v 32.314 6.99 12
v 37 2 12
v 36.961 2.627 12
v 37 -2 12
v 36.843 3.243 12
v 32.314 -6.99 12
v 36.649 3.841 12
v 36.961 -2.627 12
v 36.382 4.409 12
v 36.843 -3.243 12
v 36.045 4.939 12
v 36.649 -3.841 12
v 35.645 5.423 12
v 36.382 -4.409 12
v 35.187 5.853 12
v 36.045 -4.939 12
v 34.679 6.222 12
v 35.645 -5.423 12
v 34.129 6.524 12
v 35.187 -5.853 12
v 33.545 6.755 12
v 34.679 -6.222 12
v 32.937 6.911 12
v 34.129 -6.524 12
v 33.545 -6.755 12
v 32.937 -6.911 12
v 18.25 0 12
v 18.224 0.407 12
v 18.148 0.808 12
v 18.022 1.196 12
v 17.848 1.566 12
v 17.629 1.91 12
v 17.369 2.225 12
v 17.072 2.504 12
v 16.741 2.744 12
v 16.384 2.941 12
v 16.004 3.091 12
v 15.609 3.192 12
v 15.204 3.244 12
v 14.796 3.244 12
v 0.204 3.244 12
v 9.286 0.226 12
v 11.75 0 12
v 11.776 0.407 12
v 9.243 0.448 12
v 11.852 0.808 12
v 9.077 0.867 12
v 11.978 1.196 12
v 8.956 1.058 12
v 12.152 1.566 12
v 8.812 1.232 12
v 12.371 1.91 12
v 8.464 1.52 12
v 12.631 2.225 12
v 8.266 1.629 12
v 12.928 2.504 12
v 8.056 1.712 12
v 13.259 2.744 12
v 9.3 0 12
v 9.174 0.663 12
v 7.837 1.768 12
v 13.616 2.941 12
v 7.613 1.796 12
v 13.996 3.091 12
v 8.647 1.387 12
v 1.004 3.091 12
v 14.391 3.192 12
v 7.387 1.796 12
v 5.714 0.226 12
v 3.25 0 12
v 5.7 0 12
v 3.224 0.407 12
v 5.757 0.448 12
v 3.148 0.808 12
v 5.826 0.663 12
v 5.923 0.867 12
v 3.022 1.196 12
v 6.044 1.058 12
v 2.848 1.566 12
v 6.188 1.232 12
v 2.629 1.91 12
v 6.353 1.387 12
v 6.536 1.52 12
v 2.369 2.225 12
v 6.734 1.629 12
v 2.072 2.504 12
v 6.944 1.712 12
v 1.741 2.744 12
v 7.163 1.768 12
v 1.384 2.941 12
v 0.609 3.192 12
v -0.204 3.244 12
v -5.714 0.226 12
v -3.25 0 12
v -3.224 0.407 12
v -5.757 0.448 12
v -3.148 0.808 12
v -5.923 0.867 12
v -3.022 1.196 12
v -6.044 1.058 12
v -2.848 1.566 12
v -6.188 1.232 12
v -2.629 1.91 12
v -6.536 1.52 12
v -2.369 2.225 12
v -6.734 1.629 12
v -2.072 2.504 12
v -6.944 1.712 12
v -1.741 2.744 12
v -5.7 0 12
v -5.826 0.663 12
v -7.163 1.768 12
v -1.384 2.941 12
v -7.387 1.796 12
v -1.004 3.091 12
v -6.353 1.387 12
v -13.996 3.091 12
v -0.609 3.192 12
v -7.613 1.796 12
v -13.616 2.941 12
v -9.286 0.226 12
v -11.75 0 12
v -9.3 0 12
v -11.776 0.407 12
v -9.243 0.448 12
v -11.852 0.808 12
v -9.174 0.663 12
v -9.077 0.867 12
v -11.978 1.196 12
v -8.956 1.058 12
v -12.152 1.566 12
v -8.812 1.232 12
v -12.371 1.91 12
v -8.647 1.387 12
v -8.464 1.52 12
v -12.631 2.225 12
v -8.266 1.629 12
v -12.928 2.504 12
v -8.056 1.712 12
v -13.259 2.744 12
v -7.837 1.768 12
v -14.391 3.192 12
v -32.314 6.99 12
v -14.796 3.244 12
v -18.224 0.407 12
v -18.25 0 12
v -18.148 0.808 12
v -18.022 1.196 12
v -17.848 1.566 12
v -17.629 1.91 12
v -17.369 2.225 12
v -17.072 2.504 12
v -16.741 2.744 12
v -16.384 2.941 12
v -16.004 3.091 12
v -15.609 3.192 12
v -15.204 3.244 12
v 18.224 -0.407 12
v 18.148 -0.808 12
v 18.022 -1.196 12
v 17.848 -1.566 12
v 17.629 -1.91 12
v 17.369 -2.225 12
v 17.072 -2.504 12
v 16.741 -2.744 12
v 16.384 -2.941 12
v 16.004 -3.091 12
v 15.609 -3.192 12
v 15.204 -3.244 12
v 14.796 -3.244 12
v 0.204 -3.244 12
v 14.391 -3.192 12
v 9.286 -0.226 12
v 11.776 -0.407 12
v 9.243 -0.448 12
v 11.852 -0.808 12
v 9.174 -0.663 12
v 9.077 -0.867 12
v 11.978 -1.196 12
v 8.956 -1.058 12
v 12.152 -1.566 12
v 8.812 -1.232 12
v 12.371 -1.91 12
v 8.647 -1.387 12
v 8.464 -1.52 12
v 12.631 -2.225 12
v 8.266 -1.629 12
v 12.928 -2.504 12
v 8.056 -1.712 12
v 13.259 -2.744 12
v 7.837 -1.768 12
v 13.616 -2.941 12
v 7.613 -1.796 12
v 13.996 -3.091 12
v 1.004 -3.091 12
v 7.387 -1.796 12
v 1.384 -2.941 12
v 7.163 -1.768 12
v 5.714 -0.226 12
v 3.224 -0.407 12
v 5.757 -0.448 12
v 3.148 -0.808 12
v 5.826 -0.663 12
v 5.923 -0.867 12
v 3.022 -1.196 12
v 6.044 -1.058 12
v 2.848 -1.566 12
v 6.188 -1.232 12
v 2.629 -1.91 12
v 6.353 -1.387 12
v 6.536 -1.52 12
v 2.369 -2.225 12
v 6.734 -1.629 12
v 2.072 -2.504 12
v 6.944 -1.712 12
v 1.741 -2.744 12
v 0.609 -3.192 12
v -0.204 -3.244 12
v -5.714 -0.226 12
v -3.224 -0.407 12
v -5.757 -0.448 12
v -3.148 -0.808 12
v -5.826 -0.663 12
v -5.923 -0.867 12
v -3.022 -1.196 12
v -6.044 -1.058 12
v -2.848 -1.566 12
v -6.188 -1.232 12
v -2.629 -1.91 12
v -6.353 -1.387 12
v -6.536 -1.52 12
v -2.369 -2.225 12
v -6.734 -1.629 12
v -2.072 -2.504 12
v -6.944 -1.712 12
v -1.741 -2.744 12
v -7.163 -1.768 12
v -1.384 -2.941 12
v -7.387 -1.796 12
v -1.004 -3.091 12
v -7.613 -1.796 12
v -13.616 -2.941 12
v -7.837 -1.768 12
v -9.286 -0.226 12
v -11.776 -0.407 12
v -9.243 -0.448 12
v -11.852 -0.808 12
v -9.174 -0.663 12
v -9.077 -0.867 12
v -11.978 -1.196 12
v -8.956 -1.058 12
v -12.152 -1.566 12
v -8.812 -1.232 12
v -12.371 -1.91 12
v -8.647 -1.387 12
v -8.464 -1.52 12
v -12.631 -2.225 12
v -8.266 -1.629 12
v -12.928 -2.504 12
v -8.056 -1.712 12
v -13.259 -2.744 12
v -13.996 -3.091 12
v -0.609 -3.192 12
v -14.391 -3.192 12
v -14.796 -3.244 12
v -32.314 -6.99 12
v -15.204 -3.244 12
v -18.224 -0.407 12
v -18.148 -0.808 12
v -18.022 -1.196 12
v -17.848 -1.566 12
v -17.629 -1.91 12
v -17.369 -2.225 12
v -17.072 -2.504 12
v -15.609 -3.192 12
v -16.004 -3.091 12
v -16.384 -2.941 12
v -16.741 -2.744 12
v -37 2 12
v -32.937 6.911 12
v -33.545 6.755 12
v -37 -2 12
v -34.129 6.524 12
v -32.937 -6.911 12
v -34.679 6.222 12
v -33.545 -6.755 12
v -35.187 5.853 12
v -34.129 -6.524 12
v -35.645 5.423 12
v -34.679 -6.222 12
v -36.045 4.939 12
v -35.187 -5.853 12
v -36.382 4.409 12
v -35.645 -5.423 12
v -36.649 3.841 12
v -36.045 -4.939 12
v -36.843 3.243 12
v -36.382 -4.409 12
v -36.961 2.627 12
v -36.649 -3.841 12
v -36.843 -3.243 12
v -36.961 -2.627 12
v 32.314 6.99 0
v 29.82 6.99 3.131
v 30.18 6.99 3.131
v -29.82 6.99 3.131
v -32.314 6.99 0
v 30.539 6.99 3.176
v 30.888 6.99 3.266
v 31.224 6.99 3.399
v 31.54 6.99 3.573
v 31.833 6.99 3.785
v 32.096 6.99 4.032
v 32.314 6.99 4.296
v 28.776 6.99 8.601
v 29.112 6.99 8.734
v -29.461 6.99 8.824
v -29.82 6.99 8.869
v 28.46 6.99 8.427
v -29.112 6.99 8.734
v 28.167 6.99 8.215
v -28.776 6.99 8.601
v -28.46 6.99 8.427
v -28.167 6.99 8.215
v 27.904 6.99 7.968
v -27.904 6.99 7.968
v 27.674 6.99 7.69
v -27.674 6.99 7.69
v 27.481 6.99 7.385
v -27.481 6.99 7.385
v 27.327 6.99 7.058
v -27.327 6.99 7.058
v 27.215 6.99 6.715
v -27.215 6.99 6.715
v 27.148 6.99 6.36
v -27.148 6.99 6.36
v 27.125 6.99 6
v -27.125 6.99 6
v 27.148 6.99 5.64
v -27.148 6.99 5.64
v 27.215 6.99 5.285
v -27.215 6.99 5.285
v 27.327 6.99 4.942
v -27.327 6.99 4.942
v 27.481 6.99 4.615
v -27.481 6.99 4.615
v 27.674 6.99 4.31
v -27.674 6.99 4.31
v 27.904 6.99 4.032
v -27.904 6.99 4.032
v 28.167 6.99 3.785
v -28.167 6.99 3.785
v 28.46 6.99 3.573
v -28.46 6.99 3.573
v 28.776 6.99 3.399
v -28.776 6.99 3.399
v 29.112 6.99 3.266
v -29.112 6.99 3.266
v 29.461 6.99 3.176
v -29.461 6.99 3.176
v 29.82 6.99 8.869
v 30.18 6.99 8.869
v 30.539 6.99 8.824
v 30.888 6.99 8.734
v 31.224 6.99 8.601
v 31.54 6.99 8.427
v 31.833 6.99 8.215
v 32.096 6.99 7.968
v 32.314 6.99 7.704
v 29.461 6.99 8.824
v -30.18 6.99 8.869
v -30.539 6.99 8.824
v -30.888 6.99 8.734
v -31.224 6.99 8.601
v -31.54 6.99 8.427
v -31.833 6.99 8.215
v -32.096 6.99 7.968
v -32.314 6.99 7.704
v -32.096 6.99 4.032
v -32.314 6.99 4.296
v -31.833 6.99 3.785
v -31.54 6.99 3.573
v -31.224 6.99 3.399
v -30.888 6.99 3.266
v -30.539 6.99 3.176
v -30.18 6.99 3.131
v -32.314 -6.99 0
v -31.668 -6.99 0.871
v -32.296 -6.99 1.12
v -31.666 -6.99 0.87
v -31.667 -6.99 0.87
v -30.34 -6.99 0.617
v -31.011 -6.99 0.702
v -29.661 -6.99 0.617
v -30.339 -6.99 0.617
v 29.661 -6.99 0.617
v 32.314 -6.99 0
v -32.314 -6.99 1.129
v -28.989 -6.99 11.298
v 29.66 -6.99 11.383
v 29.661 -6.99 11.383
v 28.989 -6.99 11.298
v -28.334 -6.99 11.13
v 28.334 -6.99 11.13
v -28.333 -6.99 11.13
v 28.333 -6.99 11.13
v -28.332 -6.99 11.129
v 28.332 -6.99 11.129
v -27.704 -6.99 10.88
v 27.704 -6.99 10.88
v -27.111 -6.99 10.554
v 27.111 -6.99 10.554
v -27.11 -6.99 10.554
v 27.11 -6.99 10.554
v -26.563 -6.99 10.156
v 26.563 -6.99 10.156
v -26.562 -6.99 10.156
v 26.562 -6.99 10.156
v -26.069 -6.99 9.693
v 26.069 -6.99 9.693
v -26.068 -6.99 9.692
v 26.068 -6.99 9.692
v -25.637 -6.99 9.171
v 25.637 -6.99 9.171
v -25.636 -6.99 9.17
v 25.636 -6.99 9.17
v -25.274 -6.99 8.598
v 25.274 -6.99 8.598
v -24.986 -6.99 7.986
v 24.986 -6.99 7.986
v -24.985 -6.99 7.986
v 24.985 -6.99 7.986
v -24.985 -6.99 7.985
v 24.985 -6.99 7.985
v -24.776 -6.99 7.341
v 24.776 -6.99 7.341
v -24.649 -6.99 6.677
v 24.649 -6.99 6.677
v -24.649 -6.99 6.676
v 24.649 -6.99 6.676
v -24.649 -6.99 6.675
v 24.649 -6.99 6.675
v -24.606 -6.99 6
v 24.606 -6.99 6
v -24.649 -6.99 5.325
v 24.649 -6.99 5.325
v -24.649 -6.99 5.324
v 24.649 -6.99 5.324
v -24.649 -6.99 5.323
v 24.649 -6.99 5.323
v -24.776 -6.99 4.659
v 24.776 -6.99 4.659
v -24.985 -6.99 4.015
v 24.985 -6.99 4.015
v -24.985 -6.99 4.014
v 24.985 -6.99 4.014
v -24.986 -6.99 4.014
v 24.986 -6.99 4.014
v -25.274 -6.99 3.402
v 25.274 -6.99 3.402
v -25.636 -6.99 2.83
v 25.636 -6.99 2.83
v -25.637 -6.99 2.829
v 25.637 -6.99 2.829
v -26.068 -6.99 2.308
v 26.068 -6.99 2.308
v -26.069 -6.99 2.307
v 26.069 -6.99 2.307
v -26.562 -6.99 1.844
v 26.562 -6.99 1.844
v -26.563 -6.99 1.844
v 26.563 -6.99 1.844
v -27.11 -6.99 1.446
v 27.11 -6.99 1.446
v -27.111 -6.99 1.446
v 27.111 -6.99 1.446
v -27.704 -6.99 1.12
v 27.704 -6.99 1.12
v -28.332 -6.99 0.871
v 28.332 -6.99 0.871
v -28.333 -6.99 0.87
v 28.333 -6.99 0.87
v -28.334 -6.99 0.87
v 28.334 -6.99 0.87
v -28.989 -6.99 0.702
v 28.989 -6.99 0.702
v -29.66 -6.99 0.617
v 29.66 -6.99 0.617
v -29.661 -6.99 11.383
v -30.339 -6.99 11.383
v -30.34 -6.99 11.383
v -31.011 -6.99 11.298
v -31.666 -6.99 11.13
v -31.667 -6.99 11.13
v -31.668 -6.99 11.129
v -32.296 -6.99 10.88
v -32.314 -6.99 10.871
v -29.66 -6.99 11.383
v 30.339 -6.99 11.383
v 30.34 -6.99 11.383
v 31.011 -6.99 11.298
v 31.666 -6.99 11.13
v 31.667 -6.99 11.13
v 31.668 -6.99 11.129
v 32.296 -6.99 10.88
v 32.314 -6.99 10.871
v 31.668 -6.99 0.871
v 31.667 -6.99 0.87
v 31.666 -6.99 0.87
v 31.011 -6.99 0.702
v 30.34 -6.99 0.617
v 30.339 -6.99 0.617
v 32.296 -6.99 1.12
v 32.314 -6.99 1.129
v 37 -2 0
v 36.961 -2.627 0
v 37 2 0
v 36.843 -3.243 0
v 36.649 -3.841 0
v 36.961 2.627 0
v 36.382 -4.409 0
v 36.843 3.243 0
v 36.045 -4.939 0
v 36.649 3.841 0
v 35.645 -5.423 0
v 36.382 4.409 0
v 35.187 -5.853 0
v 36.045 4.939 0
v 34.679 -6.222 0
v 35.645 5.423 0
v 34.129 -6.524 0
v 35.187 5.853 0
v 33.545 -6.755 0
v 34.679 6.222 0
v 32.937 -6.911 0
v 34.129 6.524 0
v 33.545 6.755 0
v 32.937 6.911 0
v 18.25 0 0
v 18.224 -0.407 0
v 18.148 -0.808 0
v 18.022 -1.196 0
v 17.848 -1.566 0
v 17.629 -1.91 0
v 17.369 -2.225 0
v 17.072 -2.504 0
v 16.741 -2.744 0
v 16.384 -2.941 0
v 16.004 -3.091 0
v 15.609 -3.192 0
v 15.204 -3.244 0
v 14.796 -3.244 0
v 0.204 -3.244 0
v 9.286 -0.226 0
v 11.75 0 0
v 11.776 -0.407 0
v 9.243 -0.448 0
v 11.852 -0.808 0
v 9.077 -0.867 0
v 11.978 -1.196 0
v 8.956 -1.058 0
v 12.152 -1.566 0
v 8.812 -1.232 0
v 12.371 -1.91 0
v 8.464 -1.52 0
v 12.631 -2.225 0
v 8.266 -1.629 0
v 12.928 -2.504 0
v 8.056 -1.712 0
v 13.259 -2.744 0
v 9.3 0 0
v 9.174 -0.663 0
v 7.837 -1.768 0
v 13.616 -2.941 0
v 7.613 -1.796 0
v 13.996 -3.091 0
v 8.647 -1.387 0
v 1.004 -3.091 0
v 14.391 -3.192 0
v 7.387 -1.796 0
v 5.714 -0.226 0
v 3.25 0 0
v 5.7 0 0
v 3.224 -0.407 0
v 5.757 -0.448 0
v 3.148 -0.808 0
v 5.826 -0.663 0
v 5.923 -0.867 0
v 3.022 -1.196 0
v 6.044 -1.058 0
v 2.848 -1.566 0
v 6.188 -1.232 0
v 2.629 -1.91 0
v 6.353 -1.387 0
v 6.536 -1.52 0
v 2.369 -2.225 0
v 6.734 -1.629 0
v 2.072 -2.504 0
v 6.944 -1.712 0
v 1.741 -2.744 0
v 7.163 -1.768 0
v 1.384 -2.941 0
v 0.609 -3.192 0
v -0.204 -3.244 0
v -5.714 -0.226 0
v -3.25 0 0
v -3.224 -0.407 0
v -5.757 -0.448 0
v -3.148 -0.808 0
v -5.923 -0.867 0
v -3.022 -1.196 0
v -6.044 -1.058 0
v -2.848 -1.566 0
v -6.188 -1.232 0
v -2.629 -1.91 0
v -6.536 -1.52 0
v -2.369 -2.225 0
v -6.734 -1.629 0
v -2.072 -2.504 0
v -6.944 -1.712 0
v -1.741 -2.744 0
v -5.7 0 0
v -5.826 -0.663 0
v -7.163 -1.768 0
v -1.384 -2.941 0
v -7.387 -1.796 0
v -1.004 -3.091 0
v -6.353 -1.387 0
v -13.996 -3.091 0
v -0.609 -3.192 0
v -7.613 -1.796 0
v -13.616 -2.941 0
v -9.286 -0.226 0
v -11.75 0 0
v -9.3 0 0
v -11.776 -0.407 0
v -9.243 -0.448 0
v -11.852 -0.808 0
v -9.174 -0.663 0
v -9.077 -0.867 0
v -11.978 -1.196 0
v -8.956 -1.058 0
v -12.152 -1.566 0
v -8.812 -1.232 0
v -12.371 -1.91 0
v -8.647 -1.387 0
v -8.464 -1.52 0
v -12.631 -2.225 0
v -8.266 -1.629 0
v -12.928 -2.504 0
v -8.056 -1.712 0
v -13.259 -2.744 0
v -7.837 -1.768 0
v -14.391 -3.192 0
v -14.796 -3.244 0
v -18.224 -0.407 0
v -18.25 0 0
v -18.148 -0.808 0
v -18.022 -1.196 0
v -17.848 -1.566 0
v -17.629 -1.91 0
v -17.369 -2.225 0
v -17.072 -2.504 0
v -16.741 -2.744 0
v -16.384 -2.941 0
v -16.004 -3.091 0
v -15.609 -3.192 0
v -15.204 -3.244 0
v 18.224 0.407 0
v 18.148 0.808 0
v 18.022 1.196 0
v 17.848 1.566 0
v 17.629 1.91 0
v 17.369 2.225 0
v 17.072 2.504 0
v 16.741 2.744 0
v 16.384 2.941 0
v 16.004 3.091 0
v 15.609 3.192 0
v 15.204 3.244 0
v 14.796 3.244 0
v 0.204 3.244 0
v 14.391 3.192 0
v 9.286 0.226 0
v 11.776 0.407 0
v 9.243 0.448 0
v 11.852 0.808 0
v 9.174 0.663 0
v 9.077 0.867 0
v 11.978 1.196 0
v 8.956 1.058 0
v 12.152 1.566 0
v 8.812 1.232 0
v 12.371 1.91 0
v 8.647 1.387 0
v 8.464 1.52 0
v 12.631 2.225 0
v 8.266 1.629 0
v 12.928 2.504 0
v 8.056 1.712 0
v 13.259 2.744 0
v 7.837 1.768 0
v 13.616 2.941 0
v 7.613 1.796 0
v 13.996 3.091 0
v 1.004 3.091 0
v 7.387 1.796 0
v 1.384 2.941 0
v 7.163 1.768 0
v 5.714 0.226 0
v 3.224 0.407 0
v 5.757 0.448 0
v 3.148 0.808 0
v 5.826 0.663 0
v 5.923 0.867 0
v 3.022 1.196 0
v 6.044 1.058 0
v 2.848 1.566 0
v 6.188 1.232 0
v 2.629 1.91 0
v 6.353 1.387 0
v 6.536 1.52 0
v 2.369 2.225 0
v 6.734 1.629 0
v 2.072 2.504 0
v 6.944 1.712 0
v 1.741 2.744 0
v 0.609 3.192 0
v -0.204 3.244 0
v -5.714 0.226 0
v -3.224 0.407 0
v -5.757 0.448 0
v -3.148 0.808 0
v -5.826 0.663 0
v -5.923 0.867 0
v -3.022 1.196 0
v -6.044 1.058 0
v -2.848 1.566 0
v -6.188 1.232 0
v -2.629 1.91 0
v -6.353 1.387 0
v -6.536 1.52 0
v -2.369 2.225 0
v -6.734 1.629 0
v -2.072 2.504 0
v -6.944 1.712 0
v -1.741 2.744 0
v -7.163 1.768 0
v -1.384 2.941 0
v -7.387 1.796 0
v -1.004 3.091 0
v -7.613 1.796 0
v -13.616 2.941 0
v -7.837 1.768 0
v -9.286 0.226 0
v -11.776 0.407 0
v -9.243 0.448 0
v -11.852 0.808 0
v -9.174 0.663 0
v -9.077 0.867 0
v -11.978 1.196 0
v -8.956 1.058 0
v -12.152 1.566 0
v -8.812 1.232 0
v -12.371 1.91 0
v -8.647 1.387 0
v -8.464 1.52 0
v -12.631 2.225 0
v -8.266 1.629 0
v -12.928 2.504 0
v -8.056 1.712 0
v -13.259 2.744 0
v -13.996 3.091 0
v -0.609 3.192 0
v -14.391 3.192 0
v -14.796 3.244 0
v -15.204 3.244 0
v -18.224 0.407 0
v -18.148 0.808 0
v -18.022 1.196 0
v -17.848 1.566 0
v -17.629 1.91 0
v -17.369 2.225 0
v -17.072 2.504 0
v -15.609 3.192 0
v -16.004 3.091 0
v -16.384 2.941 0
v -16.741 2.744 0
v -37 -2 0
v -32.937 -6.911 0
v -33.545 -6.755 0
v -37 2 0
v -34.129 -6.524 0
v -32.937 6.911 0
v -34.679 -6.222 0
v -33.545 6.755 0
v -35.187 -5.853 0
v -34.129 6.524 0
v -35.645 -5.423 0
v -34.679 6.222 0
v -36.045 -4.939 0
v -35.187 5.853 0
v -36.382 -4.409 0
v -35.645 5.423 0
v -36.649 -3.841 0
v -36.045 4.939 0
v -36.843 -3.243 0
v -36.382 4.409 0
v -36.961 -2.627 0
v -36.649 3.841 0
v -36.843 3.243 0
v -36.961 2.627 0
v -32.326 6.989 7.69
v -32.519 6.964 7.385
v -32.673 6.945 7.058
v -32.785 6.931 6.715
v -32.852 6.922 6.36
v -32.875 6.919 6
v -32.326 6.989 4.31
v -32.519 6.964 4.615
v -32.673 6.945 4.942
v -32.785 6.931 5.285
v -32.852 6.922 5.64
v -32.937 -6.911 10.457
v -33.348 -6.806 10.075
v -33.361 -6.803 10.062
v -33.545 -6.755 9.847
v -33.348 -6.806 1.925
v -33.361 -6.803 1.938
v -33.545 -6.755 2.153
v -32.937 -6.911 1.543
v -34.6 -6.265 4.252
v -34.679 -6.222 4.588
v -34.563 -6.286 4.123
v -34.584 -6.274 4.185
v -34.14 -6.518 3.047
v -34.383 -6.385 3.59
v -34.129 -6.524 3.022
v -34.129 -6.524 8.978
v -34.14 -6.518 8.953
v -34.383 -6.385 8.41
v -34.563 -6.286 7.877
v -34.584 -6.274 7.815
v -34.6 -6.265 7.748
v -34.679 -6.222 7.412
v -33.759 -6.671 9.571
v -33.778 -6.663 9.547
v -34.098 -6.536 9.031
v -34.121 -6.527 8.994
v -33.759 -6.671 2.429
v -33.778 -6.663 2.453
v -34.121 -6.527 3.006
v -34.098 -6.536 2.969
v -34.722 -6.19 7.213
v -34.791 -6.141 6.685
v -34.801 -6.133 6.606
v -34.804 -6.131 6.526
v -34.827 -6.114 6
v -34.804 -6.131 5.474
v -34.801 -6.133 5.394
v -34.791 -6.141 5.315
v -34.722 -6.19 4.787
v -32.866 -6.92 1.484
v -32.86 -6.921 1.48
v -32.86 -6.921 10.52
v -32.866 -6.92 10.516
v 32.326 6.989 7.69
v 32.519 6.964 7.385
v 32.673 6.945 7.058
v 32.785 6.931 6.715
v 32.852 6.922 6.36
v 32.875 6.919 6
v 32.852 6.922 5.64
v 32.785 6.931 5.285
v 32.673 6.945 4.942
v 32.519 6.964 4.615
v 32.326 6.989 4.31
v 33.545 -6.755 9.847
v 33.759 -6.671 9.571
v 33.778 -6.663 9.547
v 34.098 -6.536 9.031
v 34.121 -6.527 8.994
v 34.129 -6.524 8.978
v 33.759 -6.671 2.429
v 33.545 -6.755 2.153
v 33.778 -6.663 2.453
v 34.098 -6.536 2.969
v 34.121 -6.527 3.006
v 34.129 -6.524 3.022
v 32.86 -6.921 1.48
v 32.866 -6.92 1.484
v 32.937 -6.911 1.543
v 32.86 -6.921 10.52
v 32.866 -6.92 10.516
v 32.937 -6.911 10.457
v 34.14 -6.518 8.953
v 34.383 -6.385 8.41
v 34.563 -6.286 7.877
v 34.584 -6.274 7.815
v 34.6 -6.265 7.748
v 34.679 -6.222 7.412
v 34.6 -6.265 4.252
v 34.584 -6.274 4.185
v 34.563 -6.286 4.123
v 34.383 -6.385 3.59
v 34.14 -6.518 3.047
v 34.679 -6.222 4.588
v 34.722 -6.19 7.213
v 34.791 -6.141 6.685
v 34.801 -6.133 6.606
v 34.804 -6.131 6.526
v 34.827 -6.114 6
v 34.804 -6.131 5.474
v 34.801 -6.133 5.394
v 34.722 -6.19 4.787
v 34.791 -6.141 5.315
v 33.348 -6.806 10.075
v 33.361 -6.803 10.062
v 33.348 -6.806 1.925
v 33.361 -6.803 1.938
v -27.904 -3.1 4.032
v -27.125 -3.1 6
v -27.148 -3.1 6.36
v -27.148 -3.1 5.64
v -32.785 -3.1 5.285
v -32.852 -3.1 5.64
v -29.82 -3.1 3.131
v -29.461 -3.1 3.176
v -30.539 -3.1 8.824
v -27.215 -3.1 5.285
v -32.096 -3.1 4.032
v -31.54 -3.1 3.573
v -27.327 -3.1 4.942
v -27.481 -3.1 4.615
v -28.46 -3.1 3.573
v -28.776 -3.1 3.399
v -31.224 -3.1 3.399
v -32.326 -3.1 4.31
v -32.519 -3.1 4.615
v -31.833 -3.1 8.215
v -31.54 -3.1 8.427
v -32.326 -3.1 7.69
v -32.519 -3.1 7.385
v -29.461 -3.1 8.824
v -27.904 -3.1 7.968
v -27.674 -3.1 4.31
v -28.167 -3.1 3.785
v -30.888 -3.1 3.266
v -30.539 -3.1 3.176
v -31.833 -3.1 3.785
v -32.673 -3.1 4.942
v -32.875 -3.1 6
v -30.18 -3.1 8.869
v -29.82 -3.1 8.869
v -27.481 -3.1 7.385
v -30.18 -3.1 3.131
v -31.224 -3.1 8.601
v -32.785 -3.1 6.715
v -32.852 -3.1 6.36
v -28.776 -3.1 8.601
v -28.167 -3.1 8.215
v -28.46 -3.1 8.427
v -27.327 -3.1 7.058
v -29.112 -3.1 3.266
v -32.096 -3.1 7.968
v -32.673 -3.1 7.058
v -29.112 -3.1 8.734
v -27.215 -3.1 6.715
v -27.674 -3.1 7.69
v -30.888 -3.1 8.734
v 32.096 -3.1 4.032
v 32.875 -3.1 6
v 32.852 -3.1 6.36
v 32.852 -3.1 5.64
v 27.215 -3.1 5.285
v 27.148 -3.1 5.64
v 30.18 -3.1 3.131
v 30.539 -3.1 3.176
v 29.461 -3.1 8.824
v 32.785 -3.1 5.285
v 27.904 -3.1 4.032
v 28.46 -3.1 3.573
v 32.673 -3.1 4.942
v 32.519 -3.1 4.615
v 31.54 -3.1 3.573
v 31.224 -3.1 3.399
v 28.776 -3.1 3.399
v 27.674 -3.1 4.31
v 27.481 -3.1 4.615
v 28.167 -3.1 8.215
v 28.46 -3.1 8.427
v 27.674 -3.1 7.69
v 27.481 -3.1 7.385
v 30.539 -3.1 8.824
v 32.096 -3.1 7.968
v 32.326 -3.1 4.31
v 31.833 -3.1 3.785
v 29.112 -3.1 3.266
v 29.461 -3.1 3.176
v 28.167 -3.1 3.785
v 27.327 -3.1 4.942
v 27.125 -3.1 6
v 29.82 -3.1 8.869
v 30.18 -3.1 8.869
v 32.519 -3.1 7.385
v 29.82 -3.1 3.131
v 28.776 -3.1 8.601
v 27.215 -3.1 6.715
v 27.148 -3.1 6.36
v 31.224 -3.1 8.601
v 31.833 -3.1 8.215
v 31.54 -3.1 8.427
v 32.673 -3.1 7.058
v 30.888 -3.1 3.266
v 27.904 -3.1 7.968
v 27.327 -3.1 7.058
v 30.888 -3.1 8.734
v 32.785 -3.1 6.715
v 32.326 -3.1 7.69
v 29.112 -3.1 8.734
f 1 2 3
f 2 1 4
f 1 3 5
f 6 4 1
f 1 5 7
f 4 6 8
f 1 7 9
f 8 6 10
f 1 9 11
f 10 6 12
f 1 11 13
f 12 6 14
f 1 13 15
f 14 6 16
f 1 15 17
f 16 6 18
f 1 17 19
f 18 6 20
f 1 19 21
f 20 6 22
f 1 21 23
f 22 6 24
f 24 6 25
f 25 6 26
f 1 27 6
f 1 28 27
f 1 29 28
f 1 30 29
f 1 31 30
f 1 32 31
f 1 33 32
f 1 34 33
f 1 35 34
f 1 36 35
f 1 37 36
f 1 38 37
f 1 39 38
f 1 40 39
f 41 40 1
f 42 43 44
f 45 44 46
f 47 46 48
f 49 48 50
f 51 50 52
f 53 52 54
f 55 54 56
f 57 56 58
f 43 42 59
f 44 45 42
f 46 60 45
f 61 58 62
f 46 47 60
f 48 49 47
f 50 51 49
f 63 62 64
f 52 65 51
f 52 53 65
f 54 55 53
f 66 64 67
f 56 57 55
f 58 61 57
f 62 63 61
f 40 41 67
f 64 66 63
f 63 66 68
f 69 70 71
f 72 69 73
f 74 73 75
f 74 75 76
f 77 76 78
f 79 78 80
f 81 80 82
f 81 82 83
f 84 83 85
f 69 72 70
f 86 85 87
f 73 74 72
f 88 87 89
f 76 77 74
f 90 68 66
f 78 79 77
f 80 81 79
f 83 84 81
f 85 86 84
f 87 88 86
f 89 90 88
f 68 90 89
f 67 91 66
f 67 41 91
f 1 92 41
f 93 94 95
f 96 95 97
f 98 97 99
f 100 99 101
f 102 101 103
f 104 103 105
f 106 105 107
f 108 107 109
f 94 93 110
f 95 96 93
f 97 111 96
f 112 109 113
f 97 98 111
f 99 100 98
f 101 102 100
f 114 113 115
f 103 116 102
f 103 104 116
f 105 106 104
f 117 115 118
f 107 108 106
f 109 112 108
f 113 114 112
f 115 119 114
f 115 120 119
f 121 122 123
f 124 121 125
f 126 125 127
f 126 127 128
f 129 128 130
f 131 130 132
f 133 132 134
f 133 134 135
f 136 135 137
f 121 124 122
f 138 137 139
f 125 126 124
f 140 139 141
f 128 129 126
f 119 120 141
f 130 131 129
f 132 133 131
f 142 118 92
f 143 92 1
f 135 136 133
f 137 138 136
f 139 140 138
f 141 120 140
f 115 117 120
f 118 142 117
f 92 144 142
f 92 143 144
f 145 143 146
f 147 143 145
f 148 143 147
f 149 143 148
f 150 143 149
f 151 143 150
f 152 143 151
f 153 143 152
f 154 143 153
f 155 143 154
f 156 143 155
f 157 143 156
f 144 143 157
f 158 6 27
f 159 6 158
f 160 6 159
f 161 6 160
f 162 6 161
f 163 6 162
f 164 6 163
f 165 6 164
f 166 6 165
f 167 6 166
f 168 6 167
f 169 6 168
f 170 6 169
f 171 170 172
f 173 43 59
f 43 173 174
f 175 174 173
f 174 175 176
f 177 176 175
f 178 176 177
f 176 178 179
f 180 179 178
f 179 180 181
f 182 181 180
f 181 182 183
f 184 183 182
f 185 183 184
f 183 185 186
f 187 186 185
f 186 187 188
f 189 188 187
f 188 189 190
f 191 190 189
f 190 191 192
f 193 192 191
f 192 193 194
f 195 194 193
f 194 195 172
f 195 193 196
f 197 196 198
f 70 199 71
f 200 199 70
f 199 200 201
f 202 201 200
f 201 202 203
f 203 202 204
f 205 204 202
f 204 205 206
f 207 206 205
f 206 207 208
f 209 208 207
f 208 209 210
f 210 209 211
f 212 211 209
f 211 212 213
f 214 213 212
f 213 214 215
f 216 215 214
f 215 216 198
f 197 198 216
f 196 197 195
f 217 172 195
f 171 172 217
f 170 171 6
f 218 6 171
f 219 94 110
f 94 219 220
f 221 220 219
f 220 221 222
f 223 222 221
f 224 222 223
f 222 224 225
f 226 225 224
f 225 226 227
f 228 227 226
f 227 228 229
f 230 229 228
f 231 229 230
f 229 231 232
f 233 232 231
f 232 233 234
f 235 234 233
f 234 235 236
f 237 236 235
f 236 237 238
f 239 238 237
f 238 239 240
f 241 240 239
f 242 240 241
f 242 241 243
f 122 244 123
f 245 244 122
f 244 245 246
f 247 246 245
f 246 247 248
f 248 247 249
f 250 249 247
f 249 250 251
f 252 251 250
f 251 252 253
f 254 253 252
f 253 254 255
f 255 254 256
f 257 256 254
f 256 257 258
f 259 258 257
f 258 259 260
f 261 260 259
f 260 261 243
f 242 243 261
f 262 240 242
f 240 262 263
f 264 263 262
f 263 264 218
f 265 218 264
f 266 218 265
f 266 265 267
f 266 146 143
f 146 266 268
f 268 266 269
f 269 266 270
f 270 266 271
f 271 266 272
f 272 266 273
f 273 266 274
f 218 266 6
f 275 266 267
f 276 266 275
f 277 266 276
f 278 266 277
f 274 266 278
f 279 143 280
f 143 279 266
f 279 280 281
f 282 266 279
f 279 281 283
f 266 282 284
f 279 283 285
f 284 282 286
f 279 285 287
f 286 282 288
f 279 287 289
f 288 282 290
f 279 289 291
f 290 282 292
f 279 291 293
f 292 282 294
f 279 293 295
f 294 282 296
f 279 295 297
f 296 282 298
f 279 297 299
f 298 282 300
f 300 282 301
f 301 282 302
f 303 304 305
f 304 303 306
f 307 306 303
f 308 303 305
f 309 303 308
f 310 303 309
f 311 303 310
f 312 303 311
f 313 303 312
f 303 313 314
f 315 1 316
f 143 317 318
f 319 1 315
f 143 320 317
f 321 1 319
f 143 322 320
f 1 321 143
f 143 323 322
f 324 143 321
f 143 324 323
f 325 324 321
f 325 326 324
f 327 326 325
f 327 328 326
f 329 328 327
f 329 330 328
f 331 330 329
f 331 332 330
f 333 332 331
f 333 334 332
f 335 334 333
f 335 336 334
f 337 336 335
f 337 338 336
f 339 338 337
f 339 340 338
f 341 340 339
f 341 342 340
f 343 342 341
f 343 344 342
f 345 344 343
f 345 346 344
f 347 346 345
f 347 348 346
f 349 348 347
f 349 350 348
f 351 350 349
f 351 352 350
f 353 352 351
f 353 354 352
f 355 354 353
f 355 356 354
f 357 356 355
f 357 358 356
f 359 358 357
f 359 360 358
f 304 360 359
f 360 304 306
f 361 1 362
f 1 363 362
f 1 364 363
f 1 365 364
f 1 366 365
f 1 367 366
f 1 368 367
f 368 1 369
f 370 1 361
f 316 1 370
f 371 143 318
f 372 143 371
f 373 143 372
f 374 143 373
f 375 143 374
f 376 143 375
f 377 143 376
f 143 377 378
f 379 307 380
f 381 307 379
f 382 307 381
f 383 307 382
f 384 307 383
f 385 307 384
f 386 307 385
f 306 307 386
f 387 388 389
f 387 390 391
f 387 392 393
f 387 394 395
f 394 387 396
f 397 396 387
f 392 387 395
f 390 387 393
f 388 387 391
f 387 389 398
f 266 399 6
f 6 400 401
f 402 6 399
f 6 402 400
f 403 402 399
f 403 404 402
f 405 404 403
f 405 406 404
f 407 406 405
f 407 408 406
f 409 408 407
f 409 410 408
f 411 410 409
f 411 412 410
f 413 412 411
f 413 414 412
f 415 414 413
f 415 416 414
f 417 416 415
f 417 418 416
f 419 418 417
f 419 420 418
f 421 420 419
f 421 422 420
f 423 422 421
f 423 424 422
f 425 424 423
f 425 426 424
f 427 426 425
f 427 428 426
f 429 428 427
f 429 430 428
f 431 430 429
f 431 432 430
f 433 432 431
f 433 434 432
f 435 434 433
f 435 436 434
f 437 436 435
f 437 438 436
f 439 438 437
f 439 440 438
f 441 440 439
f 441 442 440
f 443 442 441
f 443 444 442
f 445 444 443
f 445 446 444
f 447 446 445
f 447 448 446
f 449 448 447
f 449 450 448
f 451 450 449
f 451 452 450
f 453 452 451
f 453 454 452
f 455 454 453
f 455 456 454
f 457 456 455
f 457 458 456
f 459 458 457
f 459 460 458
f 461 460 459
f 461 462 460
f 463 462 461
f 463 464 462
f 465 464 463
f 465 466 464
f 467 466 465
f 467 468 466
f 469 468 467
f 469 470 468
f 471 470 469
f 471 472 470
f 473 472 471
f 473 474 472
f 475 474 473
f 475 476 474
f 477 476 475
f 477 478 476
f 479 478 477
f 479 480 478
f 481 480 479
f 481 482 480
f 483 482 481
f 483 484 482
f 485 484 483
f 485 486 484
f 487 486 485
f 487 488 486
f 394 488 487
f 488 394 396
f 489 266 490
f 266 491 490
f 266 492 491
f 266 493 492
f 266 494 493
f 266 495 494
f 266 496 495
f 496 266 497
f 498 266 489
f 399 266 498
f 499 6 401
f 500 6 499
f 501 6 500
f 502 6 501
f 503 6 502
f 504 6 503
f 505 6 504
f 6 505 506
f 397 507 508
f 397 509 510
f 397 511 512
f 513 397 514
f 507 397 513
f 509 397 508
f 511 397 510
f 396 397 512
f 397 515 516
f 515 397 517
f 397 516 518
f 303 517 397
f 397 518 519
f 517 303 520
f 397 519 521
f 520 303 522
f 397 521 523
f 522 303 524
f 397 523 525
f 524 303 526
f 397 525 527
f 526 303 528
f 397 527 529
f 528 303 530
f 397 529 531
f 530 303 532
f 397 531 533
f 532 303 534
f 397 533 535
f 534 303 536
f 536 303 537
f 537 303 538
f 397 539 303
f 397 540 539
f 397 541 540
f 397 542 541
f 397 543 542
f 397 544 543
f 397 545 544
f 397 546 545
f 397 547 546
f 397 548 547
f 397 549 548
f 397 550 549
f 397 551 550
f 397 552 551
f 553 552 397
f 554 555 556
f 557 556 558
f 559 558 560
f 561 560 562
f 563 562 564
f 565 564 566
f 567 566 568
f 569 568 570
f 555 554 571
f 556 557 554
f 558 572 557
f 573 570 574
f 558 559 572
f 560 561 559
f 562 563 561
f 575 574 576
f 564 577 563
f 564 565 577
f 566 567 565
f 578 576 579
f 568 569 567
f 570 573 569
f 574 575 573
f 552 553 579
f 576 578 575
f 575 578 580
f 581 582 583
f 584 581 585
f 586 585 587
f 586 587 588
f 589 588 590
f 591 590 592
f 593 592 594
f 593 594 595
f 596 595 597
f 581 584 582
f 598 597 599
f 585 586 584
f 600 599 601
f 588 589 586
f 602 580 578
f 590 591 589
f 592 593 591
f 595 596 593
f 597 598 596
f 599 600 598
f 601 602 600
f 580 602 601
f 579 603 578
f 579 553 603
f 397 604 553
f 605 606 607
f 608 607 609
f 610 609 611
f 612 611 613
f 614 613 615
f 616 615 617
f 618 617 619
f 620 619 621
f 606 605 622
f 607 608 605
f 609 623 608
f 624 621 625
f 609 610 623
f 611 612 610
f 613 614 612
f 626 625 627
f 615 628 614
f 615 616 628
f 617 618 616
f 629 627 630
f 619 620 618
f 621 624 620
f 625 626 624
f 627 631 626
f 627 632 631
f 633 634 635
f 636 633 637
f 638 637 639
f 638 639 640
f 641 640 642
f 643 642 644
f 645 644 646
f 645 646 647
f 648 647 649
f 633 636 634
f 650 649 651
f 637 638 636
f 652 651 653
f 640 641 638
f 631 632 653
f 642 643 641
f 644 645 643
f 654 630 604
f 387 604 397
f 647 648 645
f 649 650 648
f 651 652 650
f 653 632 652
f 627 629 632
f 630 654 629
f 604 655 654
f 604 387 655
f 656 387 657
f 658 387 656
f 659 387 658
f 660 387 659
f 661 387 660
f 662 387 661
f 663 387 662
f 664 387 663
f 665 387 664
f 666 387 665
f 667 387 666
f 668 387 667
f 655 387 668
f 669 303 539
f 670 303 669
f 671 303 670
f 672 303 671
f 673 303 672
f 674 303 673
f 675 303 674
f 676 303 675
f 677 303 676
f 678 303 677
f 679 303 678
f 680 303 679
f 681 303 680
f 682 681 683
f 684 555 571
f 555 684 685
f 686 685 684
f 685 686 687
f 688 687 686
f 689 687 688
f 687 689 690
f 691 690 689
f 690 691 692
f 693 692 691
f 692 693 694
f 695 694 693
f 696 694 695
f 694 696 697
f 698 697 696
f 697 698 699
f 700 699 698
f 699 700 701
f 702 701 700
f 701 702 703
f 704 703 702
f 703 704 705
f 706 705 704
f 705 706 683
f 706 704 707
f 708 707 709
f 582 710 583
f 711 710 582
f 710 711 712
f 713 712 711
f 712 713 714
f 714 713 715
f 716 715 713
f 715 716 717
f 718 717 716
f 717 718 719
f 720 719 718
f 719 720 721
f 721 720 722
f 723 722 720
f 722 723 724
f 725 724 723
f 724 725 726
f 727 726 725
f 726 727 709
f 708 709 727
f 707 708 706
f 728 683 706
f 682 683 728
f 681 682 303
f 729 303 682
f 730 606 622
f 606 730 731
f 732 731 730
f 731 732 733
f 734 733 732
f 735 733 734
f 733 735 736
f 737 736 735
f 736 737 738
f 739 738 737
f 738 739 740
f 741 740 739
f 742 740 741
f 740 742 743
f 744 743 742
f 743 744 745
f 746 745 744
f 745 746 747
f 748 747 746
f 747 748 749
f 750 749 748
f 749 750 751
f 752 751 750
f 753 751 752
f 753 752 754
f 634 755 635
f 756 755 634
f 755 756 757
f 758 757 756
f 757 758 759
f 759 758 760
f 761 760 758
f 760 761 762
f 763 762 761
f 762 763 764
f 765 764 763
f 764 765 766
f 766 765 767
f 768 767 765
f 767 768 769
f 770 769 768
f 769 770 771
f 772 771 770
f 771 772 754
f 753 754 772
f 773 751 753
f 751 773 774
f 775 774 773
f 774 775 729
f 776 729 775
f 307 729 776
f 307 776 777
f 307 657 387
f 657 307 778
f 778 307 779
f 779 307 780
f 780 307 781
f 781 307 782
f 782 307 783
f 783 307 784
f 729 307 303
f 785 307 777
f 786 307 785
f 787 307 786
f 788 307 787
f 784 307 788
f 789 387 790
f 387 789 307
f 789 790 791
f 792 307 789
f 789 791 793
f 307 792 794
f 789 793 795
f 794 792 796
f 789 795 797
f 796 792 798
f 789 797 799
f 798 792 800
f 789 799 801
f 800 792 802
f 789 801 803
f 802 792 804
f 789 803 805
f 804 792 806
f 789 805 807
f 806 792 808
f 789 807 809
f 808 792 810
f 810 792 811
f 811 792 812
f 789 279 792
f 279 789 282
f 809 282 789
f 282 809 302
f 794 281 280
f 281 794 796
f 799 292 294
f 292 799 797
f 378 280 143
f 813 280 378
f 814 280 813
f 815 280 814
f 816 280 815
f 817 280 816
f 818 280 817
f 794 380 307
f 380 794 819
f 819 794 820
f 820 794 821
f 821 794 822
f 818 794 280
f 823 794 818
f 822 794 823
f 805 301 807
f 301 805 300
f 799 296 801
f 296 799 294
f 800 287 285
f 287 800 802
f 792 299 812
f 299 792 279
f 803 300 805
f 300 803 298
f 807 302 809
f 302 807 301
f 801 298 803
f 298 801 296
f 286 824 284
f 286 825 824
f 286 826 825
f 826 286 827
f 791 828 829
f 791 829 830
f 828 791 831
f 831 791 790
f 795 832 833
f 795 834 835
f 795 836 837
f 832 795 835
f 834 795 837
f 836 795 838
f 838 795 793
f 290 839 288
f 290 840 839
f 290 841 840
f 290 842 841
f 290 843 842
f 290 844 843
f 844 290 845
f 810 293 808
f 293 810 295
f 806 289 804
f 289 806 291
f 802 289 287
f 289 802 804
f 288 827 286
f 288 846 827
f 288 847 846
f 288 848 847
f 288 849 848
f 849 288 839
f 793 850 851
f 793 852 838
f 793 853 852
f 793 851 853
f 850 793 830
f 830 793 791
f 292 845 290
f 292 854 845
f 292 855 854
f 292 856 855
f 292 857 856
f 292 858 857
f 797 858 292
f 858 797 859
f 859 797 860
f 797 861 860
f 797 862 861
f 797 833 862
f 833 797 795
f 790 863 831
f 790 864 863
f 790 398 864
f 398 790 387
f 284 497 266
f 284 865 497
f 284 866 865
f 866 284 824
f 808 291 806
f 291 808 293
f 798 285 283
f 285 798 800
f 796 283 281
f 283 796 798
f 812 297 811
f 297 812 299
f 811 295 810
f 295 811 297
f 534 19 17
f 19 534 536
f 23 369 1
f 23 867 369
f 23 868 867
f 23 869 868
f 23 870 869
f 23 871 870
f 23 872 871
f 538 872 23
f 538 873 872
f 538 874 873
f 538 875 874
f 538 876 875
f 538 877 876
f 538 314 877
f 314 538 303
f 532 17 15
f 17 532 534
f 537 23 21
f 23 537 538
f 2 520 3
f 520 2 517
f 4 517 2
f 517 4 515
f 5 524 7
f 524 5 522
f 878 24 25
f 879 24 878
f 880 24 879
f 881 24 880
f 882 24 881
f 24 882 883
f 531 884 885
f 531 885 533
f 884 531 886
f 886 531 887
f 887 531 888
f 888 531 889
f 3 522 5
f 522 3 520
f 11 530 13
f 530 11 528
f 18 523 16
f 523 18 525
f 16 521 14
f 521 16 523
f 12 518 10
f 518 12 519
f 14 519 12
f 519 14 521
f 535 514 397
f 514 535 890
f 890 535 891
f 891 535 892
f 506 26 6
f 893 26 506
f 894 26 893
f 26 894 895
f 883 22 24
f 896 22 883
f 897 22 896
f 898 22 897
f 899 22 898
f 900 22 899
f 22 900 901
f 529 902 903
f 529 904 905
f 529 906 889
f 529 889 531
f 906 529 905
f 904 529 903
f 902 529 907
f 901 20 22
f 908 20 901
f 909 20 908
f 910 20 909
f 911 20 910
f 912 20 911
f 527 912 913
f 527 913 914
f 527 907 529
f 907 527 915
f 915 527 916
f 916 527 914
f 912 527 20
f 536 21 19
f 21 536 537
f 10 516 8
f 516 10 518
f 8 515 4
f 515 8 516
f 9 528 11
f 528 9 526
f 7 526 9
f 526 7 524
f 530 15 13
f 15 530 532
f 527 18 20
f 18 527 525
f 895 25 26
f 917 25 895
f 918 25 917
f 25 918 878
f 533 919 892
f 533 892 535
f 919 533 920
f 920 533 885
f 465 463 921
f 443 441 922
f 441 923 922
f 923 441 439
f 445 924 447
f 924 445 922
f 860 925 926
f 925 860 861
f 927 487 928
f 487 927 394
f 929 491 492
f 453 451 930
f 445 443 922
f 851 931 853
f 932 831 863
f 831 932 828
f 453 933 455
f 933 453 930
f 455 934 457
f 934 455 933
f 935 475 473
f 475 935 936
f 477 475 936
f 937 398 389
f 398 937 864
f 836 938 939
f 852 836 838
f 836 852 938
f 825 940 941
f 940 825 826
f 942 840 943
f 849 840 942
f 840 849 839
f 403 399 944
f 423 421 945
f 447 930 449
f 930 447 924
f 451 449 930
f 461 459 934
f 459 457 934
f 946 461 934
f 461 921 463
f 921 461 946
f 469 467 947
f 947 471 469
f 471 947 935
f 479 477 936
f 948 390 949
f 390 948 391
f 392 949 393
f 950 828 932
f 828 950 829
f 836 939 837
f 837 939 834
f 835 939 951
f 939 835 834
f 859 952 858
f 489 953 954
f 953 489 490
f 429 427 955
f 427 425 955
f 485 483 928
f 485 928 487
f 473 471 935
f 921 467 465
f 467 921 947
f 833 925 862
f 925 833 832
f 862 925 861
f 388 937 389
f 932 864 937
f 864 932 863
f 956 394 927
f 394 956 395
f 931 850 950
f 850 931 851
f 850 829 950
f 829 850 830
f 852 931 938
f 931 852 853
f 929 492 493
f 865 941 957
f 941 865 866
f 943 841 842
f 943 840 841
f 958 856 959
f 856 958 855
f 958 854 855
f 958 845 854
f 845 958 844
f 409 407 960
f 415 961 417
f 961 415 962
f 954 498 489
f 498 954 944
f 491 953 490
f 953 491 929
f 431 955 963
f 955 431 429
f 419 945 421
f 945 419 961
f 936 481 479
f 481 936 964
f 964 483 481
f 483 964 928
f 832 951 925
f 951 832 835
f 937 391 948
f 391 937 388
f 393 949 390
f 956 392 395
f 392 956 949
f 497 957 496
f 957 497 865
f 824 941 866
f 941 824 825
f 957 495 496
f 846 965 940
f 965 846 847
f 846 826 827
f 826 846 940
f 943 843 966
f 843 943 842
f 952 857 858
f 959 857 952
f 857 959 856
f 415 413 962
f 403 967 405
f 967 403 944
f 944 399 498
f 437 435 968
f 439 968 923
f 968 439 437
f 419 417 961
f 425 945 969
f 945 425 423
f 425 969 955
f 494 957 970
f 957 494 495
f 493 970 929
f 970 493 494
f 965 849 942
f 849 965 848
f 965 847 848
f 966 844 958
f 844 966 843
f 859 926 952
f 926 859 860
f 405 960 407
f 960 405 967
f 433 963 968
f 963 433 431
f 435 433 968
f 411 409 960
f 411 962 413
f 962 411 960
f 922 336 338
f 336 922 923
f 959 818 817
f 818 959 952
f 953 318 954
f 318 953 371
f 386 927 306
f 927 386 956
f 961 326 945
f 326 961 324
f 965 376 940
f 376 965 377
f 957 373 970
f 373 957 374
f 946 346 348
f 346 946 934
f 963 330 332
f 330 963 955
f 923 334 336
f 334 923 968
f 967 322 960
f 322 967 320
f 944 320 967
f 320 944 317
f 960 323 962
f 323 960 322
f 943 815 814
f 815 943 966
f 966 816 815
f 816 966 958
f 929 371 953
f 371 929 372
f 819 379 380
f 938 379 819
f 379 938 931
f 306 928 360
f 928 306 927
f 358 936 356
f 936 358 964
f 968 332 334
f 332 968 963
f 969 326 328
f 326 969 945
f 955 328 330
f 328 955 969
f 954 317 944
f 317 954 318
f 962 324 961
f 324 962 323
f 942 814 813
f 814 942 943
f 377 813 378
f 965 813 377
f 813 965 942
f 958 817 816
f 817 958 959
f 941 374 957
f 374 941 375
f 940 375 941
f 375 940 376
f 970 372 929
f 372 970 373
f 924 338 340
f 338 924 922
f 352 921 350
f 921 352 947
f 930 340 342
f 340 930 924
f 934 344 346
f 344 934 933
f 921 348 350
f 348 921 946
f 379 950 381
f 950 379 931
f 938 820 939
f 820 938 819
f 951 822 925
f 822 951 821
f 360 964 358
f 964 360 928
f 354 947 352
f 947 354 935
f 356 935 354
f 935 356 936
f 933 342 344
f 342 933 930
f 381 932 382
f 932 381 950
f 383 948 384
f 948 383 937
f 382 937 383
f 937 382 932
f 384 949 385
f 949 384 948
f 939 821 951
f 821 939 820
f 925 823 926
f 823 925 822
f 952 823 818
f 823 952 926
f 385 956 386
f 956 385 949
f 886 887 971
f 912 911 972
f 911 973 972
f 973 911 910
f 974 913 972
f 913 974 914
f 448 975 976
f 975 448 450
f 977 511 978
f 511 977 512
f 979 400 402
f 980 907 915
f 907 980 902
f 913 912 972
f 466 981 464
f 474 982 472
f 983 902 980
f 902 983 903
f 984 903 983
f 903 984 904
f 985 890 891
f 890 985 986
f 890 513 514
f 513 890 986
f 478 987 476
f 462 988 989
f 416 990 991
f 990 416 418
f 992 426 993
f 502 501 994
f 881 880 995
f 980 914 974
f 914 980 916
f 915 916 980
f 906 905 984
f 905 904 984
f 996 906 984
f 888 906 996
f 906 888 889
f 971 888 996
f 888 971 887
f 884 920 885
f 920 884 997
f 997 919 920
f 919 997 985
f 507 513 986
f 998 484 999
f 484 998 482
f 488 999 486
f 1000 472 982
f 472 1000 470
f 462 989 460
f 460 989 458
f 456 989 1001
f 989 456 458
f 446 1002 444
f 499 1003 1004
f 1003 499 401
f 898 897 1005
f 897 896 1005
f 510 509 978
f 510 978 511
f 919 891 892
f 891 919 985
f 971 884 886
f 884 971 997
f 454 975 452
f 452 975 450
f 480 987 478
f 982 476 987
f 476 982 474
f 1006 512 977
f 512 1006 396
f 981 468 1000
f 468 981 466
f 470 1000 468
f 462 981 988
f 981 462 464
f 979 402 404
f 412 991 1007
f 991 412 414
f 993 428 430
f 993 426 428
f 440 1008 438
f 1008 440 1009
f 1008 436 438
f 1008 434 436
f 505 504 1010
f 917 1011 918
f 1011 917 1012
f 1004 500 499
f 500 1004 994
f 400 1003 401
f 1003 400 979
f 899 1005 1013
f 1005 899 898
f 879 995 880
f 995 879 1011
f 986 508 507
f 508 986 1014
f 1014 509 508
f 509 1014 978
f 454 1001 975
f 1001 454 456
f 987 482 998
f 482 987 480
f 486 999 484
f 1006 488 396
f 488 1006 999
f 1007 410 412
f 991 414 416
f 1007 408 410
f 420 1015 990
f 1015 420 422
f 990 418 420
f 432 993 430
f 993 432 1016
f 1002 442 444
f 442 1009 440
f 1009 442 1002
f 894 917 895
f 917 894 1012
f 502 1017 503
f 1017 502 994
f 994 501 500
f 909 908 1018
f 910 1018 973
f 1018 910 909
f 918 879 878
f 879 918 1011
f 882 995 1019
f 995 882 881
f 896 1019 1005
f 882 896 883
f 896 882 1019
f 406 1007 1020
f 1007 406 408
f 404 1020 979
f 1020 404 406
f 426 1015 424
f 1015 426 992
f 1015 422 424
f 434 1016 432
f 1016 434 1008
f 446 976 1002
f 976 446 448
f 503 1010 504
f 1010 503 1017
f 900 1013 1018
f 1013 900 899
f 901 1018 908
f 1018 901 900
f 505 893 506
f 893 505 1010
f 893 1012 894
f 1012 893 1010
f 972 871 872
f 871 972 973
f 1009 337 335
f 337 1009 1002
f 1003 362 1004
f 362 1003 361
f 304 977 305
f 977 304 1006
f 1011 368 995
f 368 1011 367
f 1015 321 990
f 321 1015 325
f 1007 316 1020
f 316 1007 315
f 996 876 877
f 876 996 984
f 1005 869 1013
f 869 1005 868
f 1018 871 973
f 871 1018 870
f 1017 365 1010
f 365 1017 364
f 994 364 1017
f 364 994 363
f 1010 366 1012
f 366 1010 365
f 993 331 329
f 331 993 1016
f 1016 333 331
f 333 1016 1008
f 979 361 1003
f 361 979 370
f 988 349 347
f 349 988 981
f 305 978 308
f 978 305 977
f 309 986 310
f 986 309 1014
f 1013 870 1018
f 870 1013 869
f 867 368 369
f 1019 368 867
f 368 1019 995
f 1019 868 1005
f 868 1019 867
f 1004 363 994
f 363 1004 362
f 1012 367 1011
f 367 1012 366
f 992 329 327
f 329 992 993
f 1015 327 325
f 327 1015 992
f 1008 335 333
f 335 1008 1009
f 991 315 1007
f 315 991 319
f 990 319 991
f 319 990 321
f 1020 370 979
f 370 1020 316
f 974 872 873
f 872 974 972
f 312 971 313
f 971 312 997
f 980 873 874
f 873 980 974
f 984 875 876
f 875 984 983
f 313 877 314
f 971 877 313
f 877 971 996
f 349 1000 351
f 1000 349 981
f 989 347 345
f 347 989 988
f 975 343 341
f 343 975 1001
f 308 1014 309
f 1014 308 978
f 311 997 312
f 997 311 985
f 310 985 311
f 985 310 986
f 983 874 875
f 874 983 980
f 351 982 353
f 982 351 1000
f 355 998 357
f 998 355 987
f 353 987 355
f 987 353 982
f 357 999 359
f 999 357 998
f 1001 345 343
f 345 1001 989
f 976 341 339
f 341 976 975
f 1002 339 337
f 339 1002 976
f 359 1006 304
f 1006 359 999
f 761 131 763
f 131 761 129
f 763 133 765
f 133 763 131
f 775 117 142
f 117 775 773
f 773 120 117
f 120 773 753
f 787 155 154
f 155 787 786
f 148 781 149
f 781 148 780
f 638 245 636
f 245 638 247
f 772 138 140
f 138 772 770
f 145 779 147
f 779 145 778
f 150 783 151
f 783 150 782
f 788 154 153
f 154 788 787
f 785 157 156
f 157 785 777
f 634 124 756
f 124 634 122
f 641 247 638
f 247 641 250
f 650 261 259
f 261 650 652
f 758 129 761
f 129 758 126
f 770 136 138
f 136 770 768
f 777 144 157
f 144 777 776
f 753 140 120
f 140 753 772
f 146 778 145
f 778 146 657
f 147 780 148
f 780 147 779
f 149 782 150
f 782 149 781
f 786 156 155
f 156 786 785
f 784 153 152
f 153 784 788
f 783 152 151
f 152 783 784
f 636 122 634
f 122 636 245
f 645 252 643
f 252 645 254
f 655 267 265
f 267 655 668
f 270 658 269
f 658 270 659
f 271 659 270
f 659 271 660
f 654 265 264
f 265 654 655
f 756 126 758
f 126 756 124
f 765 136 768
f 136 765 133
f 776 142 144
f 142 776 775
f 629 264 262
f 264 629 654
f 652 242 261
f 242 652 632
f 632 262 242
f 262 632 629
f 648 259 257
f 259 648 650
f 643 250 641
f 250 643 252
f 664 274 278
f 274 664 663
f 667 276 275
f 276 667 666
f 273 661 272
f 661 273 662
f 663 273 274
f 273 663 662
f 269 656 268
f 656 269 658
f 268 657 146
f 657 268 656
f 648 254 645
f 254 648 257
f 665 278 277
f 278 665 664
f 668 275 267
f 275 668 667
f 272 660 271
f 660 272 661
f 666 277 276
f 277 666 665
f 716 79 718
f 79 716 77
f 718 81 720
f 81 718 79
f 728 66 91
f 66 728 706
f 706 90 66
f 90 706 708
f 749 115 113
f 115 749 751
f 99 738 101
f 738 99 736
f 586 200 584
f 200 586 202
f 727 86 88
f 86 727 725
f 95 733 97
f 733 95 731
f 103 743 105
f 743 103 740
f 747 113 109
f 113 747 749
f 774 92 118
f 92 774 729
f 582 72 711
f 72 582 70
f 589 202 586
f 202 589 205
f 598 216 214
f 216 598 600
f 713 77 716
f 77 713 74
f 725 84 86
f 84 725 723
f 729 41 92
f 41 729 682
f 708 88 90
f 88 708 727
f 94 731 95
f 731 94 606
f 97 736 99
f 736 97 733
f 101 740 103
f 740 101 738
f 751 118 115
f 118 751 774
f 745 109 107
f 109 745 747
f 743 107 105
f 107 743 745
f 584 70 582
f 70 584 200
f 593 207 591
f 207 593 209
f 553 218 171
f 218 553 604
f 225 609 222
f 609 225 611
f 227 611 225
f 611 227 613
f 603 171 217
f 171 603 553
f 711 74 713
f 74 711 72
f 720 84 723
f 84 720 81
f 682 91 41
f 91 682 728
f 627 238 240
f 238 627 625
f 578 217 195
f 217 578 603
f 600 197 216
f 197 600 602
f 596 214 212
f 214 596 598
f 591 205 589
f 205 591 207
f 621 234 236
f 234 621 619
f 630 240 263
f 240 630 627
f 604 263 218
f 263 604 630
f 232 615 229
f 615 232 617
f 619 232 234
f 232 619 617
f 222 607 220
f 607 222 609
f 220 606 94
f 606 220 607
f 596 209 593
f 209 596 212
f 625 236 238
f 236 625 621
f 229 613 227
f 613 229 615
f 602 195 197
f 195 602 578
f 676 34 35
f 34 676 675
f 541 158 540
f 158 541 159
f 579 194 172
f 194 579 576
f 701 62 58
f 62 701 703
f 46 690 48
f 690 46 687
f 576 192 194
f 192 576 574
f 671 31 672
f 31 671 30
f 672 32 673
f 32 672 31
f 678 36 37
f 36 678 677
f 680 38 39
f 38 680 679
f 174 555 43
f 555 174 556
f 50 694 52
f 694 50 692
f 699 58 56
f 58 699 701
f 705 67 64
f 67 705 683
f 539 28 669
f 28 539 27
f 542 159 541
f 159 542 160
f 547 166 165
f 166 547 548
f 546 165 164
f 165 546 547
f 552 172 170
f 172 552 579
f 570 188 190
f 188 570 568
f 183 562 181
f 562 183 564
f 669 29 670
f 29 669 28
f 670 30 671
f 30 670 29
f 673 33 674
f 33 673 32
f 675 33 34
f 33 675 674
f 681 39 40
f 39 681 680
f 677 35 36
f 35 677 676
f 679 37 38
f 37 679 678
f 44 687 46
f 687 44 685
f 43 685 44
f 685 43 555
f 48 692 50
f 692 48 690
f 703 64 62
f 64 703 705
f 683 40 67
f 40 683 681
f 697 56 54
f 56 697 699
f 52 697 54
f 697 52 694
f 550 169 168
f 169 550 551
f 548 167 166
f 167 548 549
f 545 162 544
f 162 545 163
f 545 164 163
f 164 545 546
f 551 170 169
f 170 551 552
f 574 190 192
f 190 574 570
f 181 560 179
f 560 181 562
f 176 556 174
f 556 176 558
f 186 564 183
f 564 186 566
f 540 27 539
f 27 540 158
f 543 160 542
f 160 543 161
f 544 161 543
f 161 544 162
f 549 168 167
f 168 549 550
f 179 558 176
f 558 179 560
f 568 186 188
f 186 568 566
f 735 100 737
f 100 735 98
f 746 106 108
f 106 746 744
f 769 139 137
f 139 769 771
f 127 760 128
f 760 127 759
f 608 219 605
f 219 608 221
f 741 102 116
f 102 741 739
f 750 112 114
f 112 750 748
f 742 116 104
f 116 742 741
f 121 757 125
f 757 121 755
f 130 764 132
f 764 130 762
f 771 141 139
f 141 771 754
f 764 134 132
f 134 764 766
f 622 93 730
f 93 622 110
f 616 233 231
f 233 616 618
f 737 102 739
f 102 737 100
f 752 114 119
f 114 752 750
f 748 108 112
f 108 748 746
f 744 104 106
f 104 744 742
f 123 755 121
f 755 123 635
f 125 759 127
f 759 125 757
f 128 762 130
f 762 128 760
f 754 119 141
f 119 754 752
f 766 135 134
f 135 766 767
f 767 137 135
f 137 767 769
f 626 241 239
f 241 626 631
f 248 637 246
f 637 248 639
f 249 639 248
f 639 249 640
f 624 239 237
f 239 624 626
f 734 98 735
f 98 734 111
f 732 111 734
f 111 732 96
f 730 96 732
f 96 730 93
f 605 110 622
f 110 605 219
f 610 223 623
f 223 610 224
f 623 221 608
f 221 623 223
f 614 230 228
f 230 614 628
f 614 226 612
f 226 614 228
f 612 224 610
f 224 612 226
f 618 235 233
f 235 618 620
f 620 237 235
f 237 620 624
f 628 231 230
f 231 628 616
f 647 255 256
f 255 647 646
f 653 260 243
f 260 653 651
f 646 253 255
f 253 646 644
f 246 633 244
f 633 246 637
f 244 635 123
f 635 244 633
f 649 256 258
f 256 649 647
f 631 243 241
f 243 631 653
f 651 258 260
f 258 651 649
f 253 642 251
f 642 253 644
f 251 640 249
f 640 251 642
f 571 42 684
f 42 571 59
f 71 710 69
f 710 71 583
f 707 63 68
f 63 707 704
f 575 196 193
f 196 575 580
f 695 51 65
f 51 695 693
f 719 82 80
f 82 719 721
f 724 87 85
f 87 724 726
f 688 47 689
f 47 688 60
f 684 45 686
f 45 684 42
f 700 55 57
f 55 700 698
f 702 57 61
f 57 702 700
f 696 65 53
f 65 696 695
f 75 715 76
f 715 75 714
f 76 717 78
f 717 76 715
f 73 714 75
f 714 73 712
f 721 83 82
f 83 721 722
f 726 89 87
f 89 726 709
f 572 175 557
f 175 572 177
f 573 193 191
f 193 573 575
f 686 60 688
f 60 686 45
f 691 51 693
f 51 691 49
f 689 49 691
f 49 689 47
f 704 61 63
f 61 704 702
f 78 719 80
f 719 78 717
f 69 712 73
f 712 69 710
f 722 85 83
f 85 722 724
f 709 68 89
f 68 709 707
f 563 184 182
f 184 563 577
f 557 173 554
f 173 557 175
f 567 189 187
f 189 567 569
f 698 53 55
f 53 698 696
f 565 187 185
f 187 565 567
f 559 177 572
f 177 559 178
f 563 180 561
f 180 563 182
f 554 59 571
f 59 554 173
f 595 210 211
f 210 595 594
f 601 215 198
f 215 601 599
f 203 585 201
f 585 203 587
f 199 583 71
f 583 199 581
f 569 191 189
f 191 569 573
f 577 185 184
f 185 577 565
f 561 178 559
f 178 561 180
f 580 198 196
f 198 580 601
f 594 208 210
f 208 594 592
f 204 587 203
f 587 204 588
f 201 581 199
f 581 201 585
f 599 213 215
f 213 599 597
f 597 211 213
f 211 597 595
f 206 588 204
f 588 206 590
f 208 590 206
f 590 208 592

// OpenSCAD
$fn = 50;


difference() {
	union() {
		hull() {
			translate(v = [-17.0000000000, 2.0000000000, 0]) {
				cylinder(h = 12, r = 5);
			}
			translate(v = [17.0000000000, 2.0000000000, 0]) {
				cylinder(h = 12, r = 5);
			}
			translate(v = [-17.0000000000, -2.0000000000, 0]) {
				cylinder(h = 12, r = 5);
			}
			translate(v = [17.0000000000, -2.0000000000, 0]) {
				cylinder(h = 12, r = 5);
			}
		}
		translate(v = [-22.5000000000, 0.0000000000, 0]) {
			hull() {
				translate(v = [-9.5000000000, 2.0000000000, 0]) {
					cylinder(h = 12, r = 5);
				}
				translate(v = [9.5000000000, 2.0000000000, 0]) {
					cylinder(h = 12, r = 5);
				}
				translate(v = [-9.5000000000, -2.0000000000, 0]) {
					cylinder(h = 12, r = 5);
				}
				translate(v = [9.5000000000, -2.0000000000, 0]) {
					cylinder(h = 12, r = 5);
				}
			}
		}
		translate(v = [-22.5000000000, 0.0000000000, 0]) {
			hull() {
				translate(v = [-9.5000000000, 2.0000000000, 0]) {
					cylinder(h = 12, r = 5);
				}
				translate(v = [9.5000000000, 2.0000000000, 0]) {
					cylinder(h = 12, r = 5);
				}
				translate(v = [-9.5000000000, -2.0000000000, 0]) {
					cylinder(h = 12, r = 5);
				}
				translate(v = [9.5000000000, -2.0000000000, 0]) {
					cylinder(h = 12, r = 5);
				}
			}
		}
		translate(v = [22.5000000000, 0.0000000000, 0]) {
			hull() {
				translate(v = [-9.5000000000, 2.0000000000, 0]) {
					cylinder(h = 12, r = 5);
				}
				translate(v = [9.5000000000, 2.0000000000, 0]) {
					cylinder(h = 12, r = 5);
				}
				translate(v = [-9.5000000000, -2.0000000000, 0]) {
					cylinder(h = 12, r = 5);
				}
				translate(v = [9.5000000000, -2.0000000000, 0]) {
					cylinder(h = 12, r = 5);
				}
			}
		}
		translate(v = [22.5000000000, 0.0000000000, 0]) {
			hull() {
				translate(v = [-9.5000000000, 2.0000000000, 0]) {
					cylinder(h = 12, r = 5);
				}
				translate(v = [9.5000000000, 2.0000000000, 0]) {
					cylinder(h = 12, r = 5);
				}
				translate(v = [-9.5000000000, -2.0000000000, 0]) {
					cylinder(h = 12, r = 5);
				}
				translate(v = [9.5000000000, -2.0000000000, 0]) {
					cylinder(h = 12, r = 5);
				}
			}
		}
	}
	union() {
		translate(v = [-30.0000000000, -7.0000000000, 6.0000000000]) {
			rotate(a = [90, 0, 0]) {
				difference() {
					union() {
						#translate(v = [0, 0, -14.0000000000]) {
							cylinder(h = 14, r = 2.6000000000);
						}
						#translate(v = [0, 0, -3.9000000000]) {
							cylinder(h = 3.9000000000, r1 = 2.8750000000, r2 = 5.4000000000);
						}
						#translate(v = [0, 0, -14.0000000000]) {
							cylinder(h = 14, r = 2.8750000000);
						}
						#translate(v = [0, 0, -14.0000000000]) {
							cylinder(h = 14, r = 2.6000000000);
						}
					}
					union();
				}
			}
		}
		translate(v = [30.0000000000, -7.0000000000, 6.0000000000]) {
			rotate(a = [90, 0, 0]) {
				difference() {
					union() {
						#translate(v = [0, 0, -14.0000000000]) {
							cylinder(h = 14, r = 2.6000000000);
						}
						#translate(v = [0, 0, -3.9000000000]) {
							cylinder(h = 3.9000000000, r1 = 2.8750000000, r2 = 5.4000000000);
						}
						#translate(v = [0, 0, -14.0000000000]) {
							cylinder(h = 14, r = 2.8750000000);
						}
						#translate(v = [0, 0, -14.0000000000]) {
							cylinder(h = 14, r = 2.6000000000);
						}
					}
					union();
				}
			}
		}
		translate(v = [-15.0000000000, 0.0000000000, 0]) {
			translate(v = [0, 0, -100]) {
				cylinder(h = 200, r = 3.2500000000);
			}
		}
		translate(v = [0, 0, -100]) {
			cylinder(h = 200, r = 3.2500000000);
		}
		translate(v = [15.0000000000, 0.0000000000, 0]) {
			translate(v = [0, 0, -100]) {
				cylinder(h = 200, r = 3.2500000000);
			}
		}
		translate(v = [-15.0000000000, 0.0000000000, 0]) {
			translate(v = [0, 0, -100]) {
				cylinder(h = 200, r = 1.8000000000);
			}
		}
		translate(v = [-7.5000000000, 0.0000000000, 0]) {
			translate(v = [0, 0, -100]) {
				cylinder(h = 200, r = 1.8000000000);
			}
		}
		translate(v = [0, 0, -100]) {
			cylinder(h = 200, r = 1.8000000000);
		}
		translate(v = [7.5000000000, 0.0000000000, 0]) {
			translate(v = [0, 0, -100]) {
				cylinder(h = 200, r = 1.8000000000);
			}
		}
		translate(v = [15.0000000000, 0.0000000000, 0]) {
			translate(v = [0, 0, -100]) {
				cylinder(h = 200, r = 1.8000000000);
			}
		}
	}
}
